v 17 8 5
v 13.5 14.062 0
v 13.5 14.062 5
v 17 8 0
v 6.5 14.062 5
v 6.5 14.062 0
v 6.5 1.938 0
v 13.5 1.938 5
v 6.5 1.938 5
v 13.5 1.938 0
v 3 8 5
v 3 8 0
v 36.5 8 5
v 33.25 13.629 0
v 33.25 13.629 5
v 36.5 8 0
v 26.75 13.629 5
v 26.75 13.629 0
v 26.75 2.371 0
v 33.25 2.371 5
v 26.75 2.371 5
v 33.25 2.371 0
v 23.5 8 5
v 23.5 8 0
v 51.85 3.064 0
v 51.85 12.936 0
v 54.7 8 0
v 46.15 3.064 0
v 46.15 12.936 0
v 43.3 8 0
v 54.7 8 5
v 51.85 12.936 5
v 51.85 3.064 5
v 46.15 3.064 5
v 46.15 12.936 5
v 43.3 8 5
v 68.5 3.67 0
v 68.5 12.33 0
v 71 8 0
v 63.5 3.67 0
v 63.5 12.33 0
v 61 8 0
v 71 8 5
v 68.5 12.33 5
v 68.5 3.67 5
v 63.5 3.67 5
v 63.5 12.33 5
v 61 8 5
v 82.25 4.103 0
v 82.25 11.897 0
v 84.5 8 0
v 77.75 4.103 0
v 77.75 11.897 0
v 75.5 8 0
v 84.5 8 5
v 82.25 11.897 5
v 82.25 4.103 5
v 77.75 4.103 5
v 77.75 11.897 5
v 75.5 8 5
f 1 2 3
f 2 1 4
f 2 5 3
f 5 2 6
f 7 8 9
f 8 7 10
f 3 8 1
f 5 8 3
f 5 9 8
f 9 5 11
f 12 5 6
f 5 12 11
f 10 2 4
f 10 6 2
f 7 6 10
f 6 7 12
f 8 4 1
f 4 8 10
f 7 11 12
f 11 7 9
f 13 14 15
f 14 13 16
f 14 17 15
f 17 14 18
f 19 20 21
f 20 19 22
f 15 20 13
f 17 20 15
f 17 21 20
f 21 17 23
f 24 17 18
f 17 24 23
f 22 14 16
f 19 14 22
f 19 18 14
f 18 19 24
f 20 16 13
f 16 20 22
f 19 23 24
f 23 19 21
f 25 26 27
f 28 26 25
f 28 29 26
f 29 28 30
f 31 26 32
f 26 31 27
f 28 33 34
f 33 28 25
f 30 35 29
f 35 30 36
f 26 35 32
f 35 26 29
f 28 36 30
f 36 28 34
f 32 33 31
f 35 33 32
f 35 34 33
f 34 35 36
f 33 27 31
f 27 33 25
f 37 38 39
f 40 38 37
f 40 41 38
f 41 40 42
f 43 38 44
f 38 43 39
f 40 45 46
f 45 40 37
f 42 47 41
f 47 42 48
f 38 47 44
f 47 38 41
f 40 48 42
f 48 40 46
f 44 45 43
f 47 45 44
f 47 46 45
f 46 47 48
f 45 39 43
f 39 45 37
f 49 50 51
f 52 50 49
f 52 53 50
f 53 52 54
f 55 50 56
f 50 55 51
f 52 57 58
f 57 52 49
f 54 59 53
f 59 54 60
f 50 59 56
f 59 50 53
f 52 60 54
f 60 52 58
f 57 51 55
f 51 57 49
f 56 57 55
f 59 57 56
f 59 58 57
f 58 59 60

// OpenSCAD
union() {
  union() {
    union() {
      union() {
        difference() {
          translate([10.0000000000, 8.0000066667, 2.5000000000]) {
            scale([14.0000000000, 12.1240000000, 5.0000000000]) {
              rotate([0.0000000000, 0.0000000000, -0.0000000000]) {
                scale([0.5, 0.577, 1]) cylinder($fn = 6, center = true);
              }
            }
          }
          /* EMPTY */ sphere(r = 0);
        }
        difference() {
          translate([30.0000000000, 8.0000100000, 2.5000000000]) {
            scale([13.0000000000, 11.2580000000, 5.0000000000]) {
              rotate([0.0000000000, 0.0000000000, -0.0000000000]) {
                scale([0.5, 0.577, 1]) cylinder($fn = 6, center = true);
              }
            }
          }
          /* EMPTY */ sphere(r = 0);
        }
      }
      difference() {
        translate([49.0000500000, 7.9999874480, 2.5000000000]) {
          scale([11.4000000000, 9.8720000000, 5.0000000000]) {
            rotate([0.0000000000, 0.0000000000, -0.0000000000]) {
              scale([0.5, 0.577, 1]) cylinder($fn = 6, center = true);
            }
          }
        }
        /* EMPTY */ sphere(r = 0);
      }
    }
    difference() {
      translate([66.0000000000, 7.9999900000, 2.5000000000]) {
        scale([10.0000000000, 8.6600000000, 5.0000000000]) {
          rotate([0.0000000000, 0.0000000000, -0.0000000000]) {
            scale([0.5, 0.577, 1]) cylinder($fn = 6, center = true);
          }
        }
      }
      /* EMPTY */ sphere(r = 0);
    }
  }
  difference() {
    translate([80.0000100000, 7.9999993170, 2.5000000000]) {
      scale([9.0000000000, 7.7940000000, 5.0000000000]) {
        rotate([0.0000000000, 0.0000000000, -0.0000000000]) {
          scale([0.5, 0.577, 1]) cylinder($fn = 6, center = true);
        }
      }
    }
    /* EMPTY */ sphere(r = 0);
  }
}
